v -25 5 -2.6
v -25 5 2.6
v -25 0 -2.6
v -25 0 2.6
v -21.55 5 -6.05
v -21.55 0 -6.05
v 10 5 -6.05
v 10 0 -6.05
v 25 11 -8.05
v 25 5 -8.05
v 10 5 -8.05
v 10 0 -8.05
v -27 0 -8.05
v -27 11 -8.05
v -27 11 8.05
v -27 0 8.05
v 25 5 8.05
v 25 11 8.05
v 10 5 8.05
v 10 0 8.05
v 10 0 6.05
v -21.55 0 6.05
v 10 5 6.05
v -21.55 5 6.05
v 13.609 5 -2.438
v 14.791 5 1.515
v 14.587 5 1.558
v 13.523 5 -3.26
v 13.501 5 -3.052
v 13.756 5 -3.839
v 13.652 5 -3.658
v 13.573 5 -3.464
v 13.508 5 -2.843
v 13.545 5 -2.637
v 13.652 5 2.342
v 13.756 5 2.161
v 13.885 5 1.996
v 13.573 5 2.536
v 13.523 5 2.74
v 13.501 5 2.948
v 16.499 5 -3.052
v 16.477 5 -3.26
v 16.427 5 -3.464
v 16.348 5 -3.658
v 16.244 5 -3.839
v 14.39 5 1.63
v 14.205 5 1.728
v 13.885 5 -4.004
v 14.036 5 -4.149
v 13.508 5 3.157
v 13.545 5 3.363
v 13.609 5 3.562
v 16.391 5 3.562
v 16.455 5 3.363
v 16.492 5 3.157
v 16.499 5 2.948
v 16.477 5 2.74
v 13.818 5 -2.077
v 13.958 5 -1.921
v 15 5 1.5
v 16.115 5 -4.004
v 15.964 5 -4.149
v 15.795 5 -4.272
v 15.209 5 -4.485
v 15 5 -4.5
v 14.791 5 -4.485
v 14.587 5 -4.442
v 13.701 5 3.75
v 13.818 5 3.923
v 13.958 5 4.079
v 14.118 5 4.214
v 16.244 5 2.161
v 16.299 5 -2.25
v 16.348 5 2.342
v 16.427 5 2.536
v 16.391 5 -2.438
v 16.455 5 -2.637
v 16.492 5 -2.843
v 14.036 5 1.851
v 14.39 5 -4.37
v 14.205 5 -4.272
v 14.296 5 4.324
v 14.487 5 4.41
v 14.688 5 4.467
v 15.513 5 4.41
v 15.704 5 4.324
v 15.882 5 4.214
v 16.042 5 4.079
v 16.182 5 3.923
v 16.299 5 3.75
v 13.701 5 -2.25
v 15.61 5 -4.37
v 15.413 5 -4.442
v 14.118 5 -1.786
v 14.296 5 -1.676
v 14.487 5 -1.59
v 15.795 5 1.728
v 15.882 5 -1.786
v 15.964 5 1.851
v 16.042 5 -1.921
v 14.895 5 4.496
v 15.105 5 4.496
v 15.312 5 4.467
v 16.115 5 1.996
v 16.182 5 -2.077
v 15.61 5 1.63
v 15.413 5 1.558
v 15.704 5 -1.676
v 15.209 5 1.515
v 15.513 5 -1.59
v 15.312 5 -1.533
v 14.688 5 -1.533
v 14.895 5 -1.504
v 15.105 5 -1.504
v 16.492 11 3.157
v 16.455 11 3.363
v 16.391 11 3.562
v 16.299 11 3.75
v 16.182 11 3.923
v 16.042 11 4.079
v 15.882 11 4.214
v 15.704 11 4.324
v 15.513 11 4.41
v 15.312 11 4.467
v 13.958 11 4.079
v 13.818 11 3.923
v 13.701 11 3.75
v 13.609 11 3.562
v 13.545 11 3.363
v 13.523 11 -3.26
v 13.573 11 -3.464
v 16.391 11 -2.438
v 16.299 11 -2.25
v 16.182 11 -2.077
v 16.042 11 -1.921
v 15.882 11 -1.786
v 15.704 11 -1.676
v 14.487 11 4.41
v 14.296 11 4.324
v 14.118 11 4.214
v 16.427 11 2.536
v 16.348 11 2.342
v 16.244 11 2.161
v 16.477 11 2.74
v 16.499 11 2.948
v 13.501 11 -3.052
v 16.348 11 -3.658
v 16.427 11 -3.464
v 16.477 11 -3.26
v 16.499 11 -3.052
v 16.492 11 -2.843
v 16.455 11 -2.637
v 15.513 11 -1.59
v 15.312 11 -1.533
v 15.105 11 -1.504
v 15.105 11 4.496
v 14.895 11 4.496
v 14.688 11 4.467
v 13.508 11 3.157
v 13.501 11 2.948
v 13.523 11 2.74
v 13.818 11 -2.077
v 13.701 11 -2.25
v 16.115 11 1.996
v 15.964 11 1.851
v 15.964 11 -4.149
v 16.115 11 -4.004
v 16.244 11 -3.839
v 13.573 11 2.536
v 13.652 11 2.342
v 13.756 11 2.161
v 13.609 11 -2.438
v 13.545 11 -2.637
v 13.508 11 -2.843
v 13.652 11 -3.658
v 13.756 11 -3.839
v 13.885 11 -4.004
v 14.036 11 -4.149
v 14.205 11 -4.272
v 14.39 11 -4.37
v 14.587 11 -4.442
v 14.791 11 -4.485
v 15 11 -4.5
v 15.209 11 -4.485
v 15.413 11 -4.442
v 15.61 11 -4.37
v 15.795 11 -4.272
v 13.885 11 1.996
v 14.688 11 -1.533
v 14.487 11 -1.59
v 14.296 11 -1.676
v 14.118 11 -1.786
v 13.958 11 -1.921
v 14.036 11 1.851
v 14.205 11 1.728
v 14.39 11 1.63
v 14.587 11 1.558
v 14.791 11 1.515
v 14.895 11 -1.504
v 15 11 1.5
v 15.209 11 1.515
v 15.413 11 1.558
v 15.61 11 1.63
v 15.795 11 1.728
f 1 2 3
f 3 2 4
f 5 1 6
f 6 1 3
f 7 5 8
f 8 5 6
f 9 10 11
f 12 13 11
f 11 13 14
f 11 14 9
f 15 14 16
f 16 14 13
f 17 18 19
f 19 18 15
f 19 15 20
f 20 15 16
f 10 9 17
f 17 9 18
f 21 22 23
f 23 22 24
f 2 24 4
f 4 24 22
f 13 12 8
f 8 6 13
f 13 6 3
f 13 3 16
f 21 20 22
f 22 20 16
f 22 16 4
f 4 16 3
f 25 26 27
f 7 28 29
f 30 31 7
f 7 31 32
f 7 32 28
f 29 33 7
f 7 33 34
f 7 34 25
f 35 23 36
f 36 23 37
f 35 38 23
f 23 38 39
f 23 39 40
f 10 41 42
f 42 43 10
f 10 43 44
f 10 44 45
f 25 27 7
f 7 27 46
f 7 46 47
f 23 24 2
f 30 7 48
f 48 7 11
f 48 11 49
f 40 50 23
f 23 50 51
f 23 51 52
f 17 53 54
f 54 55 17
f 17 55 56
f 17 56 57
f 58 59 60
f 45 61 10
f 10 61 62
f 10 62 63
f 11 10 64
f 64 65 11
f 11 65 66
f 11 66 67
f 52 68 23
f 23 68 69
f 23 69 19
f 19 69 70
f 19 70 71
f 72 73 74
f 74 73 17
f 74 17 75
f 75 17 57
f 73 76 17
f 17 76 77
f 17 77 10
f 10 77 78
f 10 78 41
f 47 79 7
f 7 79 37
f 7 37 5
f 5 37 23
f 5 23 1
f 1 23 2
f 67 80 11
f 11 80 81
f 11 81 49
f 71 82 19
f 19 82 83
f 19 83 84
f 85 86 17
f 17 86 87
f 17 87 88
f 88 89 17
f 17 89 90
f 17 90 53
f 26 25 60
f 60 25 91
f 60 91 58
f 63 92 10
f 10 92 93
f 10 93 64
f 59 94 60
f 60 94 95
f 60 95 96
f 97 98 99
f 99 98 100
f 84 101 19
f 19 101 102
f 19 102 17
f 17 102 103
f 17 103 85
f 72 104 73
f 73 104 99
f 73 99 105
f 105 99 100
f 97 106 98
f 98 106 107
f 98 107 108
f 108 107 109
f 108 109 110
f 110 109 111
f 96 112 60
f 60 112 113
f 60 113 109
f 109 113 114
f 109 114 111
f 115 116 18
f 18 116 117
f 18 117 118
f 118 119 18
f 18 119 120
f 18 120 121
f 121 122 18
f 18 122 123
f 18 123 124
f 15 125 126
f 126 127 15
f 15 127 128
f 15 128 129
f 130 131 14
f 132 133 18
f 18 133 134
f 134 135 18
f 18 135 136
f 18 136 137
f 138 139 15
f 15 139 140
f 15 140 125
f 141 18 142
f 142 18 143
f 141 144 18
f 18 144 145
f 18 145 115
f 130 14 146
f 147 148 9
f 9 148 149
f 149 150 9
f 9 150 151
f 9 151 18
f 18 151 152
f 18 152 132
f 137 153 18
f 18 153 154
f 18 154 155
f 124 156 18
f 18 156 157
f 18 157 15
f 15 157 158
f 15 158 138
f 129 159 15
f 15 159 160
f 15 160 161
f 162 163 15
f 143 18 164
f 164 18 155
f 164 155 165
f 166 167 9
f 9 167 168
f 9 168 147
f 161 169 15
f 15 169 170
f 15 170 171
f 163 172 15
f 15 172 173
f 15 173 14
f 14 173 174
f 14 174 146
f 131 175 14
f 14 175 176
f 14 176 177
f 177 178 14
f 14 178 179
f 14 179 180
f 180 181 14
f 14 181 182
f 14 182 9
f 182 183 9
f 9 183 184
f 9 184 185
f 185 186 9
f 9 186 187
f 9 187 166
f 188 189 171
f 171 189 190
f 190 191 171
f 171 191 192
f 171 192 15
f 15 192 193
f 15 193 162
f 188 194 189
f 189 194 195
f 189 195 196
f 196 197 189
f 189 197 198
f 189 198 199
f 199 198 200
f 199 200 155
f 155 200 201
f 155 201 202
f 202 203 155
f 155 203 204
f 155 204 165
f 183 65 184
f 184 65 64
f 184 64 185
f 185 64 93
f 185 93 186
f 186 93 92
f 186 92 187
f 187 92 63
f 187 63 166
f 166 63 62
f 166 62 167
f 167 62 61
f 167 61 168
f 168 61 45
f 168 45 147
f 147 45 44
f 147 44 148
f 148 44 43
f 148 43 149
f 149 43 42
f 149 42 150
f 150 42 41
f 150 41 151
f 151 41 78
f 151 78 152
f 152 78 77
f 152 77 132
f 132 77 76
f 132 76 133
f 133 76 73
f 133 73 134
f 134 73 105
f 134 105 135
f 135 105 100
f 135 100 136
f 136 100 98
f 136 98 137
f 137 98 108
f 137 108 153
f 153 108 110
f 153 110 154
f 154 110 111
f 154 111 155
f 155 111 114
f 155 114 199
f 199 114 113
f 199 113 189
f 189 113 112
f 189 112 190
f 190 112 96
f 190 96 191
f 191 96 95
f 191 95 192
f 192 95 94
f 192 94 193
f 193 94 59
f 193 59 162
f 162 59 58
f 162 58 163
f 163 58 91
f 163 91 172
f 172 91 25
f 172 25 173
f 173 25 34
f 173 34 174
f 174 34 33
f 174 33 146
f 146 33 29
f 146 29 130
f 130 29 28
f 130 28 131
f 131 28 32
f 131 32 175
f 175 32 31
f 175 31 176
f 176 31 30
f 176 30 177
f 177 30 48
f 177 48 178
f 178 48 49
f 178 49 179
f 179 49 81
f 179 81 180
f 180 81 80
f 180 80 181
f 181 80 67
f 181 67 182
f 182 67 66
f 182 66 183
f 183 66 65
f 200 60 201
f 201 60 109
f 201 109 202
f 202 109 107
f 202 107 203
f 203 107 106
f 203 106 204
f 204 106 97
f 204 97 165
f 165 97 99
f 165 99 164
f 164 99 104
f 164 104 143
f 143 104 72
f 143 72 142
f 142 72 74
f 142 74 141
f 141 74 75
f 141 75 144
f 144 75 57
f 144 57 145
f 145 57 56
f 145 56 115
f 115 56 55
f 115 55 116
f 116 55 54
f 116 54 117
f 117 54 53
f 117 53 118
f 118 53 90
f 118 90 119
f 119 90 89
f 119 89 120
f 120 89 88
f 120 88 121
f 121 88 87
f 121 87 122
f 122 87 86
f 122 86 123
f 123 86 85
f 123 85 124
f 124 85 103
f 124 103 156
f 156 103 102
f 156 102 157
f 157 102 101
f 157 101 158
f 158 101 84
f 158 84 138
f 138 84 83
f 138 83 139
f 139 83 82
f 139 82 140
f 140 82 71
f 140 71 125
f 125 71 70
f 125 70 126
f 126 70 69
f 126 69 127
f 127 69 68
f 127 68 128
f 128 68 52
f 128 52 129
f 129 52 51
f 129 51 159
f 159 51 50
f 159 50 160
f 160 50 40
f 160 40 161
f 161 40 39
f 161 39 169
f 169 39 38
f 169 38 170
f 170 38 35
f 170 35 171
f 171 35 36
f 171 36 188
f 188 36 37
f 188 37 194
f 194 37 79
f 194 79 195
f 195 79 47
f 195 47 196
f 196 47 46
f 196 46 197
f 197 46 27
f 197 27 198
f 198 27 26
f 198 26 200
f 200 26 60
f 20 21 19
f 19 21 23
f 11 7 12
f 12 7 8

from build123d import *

# Parameters (mm, degrees)
BOSS_EXTRUDE1_DEPTH     = 5
BOSS_EXTRUDE2_DEPTH     = 6
SKETCH4_R               = 1.5
CUT_EXTRUDE1_DEPTH      = 29.806292715
CUT_EXTRUDE2_DEPTH      = 33.385336188
CUT_EXTRUDE2_DEPTH_BACK = 33.385336188
SKETCH5_W               = 15
SKETCH5_H               = 5


with BuildPart() as part:
    # Sketch2 → Boss-Extrude1 (new body)
    with BuildSketch(Plane(origin=(0, 0, 0), x_dir=(1, 0, 0), z_dir=(0, 1, 0))):
        Polygon((-27, 8.05), (25, 8.05), (25, 6.05), (-21.55, 6.05), (-25, 2.6), (-25, -2.6), (-21.55, -6.05), (25, -6.05), (25, -8.05), (-27, -8.05), align=None)
    extrude(amount=BOSS_EXTRUDE1_DEPTH)

    # Sketch3 → Boss-Extrude2 (add)
    with BuildSketch(Plane(origin=(0, 5, 0), x_dir=(1, 0, 0), z_dir=(0, 1, 0))):
        Polygon((25, 6.05), (25, -6.05), (25, -8.05), (-27, -8.05), (-27, 8.05), (25, 8.05), align=None)
    extrude(amount=BOSS_EXTRUDE2_DEPTH)

    # Sketch4 → Cut-Extrude1 (cut, through all)
    with BuildSketch(Plane.XZ.offset(-5)):
        with Locations(Location((15, 3, 0), (0, 0, 270))):
            Circle(SKETCH4_R)
        with Locations(Location((15, -3, 0), (0, 0, 270))):
            Circle(SKETCH4_R)
    extrude(amount=-CUT_EXTRUDE1_DEPTH, mode=Mode.SUBTRACT)

    # Sketch5 → Cut-Extrude2 (cut, two sides: drawn at the far end of the back side and taken through both)
    with BuildSketch(Plane(origin=(0, 0, 6.05), x_dir=(-1, 0, 0), z_dir=(0, 0, -1)).offset(-CUT_EXTRUDE2_DEPTH_BACK)):
        with Locations((-17.5, 2.5)):
            Rectangle(SKETCH5_W, SKETCH5_H)
    extrude(amount=CUT_EXTRUDE2_DEPTH + CUT_EXTRUDE2_DEPTH_BACK, mode=Mode.SUBTRACT)


solid = part.part
